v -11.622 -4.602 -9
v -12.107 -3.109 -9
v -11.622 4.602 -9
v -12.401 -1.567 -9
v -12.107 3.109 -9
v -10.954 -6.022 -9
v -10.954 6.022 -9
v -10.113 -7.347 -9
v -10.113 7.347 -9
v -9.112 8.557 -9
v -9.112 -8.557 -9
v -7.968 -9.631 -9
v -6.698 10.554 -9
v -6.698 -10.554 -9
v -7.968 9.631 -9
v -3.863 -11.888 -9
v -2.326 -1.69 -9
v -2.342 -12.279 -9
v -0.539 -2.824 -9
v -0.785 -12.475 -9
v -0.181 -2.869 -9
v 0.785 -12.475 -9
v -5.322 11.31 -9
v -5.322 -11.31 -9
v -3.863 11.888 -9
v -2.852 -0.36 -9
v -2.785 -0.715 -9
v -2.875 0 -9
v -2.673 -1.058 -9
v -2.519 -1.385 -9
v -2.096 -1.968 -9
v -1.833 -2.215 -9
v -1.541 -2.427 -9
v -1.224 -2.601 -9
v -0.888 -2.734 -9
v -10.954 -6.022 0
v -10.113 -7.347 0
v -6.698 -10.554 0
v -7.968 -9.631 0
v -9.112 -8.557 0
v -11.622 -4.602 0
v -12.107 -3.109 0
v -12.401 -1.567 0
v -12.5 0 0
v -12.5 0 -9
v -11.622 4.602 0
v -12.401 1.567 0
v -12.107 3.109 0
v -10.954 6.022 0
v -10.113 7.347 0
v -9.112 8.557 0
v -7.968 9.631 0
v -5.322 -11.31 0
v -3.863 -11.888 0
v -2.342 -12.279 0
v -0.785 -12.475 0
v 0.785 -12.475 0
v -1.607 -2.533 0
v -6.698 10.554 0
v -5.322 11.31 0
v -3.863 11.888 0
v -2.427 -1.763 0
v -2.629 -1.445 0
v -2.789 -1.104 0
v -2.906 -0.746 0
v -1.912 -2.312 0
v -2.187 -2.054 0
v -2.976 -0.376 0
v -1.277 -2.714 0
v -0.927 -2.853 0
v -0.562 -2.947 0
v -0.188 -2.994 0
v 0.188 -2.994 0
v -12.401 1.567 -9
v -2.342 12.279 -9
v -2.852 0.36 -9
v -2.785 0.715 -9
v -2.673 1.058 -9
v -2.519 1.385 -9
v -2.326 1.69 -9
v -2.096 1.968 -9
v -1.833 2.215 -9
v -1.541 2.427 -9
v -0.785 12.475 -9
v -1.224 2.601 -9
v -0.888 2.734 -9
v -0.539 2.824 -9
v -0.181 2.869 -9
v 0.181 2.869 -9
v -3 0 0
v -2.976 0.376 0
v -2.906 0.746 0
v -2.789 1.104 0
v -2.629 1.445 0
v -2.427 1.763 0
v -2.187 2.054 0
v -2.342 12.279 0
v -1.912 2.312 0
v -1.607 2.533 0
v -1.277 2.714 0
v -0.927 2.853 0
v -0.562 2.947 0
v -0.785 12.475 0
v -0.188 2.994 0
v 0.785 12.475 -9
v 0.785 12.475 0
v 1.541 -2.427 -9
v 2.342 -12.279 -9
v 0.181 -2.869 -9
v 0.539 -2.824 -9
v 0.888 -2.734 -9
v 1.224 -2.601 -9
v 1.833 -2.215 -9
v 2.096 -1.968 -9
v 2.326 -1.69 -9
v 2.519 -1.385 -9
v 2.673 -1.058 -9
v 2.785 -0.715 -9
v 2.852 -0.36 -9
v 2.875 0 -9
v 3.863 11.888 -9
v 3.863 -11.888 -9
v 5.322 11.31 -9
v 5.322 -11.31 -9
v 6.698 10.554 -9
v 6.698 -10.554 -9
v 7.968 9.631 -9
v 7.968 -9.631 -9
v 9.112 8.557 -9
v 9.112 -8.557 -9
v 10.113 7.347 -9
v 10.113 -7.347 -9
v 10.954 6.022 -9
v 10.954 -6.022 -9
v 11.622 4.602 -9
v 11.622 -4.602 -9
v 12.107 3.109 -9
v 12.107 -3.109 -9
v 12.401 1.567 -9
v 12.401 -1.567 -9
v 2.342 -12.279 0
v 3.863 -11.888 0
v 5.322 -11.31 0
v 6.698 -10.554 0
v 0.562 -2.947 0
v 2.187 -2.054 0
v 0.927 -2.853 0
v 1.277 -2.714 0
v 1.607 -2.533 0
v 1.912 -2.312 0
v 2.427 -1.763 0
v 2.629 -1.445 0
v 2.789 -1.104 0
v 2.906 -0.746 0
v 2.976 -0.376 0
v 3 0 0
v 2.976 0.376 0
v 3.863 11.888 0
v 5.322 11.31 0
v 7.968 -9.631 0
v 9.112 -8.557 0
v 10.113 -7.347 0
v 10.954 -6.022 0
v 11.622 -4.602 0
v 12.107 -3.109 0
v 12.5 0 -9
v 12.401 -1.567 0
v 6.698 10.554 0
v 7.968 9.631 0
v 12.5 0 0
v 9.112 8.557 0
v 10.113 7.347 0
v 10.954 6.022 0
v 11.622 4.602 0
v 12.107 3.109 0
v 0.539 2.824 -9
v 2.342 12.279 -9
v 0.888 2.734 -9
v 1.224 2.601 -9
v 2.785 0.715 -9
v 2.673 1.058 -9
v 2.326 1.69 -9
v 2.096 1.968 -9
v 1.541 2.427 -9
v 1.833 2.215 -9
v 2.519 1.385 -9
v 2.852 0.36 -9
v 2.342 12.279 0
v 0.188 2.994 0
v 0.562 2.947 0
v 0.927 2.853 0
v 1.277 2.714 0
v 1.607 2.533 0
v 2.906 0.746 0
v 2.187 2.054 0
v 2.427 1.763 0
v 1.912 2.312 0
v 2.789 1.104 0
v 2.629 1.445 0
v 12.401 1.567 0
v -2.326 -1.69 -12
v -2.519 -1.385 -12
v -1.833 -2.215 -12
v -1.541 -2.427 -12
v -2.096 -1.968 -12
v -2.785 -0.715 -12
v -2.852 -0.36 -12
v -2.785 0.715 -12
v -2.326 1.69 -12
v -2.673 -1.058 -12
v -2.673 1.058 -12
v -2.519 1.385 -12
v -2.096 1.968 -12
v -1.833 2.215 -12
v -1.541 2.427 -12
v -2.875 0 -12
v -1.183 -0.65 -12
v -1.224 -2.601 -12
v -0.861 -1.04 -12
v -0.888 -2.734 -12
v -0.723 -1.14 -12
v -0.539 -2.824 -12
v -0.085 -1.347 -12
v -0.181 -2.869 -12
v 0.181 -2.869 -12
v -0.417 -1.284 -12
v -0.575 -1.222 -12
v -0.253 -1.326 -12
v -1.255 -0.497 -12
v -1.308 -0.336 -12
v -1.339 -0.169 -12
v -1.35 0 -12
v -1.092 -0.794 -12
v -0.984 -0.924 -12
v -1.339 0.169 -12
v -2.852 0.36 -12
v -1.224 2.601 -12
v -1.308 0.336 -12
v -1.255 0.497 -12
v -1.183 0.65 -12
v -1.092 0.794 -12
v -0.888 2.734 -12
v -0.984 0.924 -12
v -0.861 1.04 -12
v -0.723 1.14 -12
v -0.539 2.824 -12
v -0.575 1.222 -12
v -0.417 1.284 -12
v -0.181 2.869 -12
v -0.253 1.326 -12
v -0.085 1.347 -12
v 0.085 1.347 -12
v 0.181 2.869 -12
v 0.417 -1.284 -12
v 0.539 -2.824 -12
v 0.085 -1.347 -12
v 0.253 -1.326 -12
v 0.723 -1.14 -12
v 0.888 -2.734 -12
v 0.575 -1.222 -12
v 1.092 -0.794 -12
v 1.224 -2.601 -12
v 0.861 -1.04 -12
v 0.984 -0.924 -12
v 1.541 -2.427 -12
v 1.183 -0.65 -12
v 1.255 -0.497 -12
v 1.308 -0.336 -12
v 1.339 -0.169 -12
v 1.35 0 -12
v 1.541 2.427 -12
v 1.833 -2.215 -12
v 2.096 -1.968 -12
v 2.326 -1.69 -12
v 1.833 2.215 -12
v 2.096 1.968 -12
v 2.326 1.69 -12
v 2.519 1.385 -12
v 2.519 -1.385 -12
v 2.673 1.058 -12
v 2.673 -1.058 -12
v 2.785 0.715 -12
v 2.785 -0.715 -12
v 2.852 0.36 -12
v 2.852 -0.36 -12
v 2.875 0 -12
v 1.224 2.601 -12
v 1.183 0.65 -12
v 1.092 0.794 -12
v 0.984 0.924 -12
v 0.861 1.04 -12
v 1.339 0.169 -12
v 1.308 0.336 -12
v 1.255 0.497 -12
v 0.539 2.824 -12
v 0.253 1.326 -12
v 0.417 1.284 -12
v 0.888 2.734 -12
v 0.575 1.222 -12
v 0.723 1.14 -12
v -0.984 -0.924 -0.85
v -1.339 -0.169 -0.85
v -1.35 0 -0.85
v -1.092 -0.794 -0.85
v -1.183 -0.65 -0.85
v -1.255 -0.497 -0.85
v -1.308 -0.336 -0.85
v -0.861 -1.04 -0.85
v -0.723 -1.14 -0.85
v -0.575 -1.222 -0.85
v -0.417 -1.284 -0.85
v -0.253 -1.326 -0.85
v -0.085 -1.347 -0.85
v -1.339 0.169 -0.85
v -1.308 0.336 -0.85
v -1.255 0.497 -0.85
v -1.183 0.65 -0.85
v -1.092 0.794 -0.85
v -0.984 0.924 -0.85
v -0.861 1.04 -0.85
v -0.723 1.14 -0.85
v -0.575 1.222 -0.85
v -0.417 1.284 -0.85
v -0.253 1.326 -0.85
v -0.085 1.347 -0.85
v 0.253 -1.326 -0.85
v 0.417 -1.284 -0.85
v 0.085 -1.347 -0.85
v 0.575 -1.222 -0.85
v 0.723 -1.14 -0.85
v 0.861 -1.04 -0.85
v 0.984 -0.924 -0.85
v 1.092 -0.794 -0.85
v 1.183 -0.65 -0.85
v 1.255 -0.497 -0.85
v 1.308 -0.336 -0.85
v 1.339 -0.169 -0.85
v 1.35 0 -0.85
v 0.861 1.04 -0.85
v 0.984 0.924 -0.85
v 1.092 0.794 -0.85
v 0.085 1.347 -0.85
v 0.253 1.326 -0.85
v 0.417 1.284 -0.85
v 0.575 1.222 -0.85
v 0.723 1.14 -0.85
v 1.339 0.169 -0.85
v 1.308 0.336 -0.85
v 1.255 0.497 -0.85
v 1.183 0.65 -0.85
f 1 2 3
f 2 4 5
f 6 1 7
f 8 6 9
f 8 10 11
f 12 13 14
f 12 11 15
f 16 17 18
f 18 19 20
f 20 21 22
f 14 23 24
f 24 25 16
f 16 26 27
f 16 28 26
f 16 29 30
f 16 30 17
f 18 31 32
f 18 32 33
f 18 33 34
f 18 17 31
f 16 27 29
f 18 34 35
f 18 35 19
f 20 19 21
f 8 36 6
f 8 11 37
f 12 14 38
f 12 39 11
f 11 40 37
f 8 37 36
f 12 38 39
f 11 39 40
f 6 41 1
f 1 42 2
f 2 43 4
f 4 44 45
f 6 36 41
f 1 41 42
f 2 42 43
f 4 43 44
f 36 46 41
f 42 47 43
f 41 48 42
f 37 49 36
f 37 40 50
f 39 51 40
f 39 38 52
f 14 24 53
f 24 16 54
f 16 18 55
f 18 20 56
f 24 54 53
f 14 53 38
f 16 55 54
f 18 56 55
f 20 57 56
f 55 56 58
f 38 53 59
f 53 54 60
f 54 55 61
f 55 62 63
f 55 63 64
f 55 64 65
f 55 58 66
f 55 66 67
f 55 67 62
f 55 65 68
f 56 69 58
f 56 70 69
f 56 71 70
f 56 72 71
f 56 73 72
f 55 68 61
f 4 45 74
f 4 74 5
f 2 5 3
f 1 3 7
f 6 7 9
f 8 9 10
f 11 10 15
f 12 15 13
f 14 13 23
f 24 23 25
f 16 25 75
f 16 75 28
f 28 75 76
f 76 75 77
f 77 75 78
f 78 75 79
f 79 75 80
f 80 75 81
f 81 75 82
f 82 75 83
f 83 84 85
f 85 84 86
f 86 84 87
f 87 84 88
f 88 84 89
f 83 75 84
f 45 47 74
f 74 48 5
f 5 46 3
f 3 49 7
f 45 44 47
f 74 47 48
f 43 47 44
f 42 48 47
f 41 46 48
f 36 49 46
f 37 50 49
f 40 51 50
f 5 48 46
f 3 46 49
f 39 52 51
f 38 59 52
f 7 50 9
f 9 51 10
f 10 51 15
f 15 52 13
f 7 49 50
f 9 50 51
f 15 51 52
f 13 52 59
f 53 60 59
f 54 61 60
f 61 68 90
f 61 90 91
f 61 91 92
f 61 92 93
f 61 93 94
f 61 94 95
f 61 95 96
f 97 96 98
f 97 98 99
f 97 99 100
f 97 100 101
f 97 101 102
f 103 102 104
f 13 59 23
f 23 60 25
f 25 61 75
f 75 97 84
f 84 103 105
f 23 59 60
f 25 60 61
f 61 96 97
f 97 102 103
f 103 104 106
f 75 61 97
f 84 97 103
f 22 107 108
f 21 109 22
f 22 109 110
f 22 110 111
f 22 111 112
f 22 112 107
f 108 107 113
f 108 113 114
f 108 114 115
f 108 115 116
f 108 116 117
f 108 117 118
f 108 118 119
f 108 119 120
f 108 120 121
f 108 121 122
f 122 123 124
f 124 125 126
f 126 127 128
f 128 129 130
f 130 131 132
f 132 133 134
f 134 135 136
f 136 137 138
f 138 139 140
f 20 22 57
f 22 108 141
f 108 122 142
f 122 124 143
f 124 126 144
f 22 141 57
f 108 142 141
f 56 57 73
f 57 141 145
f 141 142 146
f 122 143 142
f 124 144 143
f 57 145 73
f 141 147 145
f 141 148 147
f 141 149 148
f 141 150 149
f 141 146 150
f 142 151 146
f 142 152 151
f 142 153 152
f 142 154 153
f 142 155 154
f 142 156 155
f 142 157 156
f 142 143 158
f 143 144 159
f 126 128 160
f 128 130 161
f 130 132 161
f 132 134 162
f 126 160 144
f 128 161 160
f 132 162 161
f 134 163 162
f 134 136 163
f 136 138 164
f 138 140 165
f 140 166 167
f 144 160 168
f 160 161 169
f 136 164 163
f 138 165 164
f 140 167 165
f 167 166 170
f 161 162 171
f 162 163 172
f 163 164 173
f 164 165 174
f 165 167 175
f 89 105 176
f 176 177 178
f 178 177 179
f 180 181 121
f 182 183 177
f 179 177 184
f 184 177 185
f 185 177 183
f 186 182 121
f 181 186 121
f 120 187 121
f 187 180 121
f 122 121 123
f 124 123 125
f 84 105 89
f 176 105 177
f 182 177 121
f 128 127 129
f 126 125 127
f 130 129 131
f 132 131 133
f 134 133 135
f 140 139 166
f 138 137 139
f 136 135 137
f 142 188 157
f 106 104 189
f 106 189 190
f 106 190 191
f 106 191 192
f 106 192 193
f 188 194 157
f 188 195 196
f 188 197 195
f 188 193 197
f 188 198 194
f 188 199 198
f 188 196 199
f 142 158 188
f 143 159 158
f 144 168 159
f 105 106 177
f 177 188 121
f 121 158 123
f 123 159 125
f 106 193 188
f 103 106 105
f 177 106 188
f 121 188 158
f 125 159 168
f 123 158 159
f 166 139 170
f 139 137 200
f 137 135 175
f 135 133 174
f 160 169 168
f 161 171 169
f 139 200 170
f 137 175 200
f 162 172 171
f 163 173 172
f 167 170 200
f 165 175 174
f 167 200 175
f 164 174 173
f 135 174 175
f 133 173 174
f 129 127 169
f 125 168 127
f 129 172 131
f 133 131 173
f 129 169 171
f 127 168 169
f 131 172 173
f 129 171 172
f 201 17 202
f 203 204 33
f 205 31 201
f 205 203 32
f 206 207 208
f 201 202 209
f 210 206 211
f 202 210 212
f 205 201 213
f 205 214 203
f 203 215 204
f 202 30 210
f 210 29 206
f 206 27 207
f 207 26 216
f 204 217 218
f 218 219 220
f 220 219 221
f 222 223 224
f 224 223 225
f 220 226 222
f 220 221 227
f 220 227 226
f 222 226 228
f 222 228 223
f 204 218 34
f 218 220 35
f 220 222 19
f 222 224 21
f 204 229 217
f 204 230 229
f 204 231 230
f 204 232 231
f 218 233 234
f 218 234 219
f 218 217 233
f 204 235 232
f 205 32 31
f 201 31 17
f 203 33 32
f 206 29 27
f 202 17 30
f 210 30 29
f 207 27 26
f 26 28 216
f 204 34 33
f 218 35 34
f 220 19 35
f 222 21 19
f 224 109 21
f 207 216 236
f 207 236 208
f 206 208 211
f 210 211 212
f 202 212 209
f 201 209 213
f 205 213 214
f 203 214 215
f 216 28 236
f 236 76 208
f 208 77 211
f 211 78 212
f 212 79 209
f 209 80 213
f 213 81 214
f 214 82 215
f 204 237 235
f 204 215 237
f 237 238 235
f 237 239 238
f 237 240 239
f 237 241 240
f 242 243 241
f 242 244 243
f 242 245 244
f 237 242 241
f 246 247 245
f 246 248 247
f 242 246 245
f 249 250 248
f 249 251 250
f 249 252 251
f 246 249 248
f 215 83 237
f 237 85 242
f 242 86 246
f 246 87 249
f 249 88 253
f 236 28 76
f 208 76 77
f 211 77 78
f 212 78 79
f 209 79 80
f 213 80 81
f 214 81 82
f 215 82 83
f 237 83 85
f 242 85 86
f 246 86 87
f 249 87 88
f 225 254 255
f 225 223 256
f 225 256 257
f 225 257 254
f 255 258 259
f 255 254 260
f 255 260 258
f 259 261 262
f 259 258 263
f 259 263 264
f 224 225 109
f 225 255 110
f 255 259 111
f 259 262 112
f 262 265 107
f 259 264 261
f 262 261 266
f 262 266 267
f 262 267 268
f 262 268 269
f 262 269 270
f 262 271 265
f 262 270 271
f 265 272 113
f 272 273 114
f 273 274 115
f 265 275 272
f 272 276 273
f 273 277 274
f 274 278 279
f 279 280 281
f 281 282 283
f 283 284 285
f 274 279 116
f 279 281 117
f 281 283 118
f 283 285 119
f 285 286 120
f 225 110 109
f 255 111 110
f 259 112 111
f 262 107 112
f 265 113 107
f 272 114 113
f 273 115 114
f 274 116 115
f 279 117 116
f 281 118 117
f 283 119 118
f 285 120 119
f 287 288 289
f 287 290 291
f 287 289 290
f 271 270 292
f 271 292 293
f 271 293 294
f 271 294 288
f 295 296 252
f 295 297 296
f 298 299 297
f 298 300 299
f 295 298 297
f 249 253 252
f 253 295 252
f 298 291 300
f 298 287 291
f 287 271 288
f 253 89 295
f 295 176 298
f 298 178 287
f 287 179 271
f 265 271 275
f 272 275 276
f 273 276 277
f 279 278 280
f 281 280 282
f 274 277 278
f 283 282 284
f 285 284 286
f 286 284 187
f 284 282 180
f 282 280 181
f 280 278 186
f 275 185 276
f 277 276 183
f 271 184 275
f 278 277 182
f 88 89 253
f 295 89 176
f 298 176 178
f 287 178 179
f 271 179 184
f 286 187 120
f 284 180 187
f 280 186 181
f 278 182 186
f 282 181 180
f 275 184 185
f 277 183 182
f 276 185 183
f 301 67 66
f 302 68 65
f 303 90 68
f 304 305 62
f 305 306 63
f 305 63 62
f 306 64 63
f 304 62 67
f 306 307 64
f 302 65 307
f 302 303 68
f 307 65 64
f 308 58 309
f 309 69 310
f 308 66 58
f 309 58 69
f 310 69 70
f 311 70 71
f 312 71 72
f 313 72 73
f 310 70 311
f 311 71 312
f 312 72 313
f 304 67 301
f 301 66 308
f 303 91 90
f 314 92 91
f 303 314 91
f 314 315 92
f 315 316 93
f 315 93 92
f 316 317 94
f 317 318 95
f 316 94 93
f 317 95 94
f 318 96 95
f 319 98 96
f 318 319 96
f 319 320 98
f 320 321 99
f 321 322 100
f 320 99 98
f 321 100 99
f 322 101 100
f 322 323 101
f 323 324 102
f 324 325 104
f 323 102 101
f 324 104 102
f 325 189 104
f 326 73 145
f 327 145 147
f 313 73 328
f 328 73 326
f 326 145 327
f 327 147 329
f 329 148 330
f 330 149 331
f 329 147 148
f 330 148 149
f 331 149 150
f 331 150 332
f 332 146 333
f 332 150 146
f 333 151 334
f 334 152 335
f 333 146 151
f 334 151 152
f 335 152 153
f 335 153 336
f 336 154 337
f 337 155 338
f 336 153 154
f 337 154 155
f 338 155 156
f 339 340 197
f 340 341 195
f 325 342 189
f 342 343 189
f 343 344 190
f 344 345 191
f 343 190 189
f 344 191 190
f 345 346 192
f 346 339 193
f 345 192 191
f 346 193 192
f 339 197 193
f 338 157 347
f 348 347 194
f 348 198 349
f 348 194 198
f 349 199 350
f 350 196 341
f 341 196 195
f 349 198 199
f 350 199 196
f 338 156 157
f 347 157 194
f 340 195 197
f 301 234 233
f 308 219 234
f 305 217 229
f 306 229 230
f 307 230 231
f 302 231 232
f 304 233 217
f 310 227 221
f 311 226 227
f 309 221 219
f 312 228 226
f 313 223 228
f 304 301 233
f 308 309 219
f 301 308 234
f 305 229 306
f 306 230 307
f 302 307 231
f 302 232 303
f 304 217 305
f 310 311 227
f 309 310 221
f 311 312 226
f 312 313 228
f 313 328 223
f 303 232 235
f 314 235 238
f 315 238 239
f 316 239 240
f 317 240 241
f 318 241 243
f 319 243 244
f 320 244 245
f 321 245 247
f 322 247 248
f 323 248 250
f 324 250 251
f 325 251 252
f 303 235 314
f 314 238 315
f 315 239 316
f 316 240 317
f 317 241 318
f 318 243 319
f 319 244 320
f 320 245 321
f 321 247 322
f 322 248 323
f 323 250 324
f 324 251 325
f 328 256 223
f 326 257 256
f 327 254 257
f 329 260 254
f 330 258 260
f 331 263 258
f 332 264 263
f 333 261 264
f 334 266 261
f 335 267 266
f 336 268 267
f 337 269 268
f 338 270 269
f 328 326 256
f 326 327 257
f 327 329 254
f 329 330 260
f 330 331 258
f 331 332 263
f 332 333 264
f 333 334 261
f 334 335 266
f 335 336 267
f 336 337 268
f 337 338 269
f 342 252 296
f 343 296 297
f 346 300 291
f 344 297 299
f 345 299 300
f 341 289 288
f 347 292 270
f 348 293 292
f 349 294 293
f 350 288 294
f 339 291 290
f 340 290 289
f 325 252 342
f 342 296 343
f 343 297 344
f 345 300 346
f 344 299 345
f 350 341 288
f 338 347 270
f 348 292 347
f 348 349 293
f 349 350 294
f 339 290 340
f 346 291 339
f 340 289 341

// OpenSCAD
$fn = 50;


difference() {
	union() {
		translate(v = [0, 0, -9.0000000000]) {
			cylinder(h = 9, r = 12.5000000000);
		}
		#translate(v = [0, 0, -12.0000000000]) {
			cylinder(h = 12, r = 2.8750000000);
		}
	}
	union() {
		translate(v = [0, 0, 0]) {
			rotate(a = [0, 0, 0]) {
				difference() {
					union() {
						translate(v = [0, 0, -12.0000000000]) {
							cylinder(h = 12, r = 1.0000000000);
						}
						translate(v = [0, 0, -0.8500000000]) {
							cylinder(h = 0.8500000000, r1 = 1.3500000000, r2 = 3.0000000000);
						}
						translate(v = [0, 0, -12.0000000000]) {
							cylinder(h = 12, r = 1.3500000000);
						}
						translate(v = [0, 0, -12.0000000000]) {
							cylinder(h = 12, r = 1.0000000000);
						}
					}
					union();
				}
			}
		}
	}
}
